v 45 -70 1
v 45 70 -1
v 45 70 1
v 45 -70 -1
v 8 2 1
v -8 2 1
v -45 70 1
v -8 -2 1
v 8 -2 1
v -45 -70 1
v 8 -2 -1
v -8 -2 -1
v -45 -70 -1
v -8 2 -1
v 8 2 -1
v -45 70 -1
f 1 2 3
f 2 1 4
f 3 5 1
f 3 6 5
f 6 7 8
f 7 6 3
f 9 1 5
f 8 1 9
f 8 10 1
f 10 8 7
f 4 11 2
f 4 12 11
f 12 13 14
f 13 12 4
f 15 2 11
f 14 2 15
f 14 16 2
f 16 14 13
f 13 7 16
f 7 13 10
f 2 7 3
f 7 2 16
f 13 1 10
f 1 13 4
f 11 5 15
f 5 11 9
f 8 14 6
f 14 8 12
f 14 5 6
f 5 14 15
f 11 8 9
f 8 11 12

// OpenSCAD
// ========================================
// a 90 x 140 x 2 mm plate with one 16 x 4 mm slots
// NeuroCAD canonical IR; dimensions are millimetres
// ========================================
$fn = 48;

difference() {
  cube(size=[90, 140, 2], center=true);
  cube(size=[16, 4, 4], center=true);
}
